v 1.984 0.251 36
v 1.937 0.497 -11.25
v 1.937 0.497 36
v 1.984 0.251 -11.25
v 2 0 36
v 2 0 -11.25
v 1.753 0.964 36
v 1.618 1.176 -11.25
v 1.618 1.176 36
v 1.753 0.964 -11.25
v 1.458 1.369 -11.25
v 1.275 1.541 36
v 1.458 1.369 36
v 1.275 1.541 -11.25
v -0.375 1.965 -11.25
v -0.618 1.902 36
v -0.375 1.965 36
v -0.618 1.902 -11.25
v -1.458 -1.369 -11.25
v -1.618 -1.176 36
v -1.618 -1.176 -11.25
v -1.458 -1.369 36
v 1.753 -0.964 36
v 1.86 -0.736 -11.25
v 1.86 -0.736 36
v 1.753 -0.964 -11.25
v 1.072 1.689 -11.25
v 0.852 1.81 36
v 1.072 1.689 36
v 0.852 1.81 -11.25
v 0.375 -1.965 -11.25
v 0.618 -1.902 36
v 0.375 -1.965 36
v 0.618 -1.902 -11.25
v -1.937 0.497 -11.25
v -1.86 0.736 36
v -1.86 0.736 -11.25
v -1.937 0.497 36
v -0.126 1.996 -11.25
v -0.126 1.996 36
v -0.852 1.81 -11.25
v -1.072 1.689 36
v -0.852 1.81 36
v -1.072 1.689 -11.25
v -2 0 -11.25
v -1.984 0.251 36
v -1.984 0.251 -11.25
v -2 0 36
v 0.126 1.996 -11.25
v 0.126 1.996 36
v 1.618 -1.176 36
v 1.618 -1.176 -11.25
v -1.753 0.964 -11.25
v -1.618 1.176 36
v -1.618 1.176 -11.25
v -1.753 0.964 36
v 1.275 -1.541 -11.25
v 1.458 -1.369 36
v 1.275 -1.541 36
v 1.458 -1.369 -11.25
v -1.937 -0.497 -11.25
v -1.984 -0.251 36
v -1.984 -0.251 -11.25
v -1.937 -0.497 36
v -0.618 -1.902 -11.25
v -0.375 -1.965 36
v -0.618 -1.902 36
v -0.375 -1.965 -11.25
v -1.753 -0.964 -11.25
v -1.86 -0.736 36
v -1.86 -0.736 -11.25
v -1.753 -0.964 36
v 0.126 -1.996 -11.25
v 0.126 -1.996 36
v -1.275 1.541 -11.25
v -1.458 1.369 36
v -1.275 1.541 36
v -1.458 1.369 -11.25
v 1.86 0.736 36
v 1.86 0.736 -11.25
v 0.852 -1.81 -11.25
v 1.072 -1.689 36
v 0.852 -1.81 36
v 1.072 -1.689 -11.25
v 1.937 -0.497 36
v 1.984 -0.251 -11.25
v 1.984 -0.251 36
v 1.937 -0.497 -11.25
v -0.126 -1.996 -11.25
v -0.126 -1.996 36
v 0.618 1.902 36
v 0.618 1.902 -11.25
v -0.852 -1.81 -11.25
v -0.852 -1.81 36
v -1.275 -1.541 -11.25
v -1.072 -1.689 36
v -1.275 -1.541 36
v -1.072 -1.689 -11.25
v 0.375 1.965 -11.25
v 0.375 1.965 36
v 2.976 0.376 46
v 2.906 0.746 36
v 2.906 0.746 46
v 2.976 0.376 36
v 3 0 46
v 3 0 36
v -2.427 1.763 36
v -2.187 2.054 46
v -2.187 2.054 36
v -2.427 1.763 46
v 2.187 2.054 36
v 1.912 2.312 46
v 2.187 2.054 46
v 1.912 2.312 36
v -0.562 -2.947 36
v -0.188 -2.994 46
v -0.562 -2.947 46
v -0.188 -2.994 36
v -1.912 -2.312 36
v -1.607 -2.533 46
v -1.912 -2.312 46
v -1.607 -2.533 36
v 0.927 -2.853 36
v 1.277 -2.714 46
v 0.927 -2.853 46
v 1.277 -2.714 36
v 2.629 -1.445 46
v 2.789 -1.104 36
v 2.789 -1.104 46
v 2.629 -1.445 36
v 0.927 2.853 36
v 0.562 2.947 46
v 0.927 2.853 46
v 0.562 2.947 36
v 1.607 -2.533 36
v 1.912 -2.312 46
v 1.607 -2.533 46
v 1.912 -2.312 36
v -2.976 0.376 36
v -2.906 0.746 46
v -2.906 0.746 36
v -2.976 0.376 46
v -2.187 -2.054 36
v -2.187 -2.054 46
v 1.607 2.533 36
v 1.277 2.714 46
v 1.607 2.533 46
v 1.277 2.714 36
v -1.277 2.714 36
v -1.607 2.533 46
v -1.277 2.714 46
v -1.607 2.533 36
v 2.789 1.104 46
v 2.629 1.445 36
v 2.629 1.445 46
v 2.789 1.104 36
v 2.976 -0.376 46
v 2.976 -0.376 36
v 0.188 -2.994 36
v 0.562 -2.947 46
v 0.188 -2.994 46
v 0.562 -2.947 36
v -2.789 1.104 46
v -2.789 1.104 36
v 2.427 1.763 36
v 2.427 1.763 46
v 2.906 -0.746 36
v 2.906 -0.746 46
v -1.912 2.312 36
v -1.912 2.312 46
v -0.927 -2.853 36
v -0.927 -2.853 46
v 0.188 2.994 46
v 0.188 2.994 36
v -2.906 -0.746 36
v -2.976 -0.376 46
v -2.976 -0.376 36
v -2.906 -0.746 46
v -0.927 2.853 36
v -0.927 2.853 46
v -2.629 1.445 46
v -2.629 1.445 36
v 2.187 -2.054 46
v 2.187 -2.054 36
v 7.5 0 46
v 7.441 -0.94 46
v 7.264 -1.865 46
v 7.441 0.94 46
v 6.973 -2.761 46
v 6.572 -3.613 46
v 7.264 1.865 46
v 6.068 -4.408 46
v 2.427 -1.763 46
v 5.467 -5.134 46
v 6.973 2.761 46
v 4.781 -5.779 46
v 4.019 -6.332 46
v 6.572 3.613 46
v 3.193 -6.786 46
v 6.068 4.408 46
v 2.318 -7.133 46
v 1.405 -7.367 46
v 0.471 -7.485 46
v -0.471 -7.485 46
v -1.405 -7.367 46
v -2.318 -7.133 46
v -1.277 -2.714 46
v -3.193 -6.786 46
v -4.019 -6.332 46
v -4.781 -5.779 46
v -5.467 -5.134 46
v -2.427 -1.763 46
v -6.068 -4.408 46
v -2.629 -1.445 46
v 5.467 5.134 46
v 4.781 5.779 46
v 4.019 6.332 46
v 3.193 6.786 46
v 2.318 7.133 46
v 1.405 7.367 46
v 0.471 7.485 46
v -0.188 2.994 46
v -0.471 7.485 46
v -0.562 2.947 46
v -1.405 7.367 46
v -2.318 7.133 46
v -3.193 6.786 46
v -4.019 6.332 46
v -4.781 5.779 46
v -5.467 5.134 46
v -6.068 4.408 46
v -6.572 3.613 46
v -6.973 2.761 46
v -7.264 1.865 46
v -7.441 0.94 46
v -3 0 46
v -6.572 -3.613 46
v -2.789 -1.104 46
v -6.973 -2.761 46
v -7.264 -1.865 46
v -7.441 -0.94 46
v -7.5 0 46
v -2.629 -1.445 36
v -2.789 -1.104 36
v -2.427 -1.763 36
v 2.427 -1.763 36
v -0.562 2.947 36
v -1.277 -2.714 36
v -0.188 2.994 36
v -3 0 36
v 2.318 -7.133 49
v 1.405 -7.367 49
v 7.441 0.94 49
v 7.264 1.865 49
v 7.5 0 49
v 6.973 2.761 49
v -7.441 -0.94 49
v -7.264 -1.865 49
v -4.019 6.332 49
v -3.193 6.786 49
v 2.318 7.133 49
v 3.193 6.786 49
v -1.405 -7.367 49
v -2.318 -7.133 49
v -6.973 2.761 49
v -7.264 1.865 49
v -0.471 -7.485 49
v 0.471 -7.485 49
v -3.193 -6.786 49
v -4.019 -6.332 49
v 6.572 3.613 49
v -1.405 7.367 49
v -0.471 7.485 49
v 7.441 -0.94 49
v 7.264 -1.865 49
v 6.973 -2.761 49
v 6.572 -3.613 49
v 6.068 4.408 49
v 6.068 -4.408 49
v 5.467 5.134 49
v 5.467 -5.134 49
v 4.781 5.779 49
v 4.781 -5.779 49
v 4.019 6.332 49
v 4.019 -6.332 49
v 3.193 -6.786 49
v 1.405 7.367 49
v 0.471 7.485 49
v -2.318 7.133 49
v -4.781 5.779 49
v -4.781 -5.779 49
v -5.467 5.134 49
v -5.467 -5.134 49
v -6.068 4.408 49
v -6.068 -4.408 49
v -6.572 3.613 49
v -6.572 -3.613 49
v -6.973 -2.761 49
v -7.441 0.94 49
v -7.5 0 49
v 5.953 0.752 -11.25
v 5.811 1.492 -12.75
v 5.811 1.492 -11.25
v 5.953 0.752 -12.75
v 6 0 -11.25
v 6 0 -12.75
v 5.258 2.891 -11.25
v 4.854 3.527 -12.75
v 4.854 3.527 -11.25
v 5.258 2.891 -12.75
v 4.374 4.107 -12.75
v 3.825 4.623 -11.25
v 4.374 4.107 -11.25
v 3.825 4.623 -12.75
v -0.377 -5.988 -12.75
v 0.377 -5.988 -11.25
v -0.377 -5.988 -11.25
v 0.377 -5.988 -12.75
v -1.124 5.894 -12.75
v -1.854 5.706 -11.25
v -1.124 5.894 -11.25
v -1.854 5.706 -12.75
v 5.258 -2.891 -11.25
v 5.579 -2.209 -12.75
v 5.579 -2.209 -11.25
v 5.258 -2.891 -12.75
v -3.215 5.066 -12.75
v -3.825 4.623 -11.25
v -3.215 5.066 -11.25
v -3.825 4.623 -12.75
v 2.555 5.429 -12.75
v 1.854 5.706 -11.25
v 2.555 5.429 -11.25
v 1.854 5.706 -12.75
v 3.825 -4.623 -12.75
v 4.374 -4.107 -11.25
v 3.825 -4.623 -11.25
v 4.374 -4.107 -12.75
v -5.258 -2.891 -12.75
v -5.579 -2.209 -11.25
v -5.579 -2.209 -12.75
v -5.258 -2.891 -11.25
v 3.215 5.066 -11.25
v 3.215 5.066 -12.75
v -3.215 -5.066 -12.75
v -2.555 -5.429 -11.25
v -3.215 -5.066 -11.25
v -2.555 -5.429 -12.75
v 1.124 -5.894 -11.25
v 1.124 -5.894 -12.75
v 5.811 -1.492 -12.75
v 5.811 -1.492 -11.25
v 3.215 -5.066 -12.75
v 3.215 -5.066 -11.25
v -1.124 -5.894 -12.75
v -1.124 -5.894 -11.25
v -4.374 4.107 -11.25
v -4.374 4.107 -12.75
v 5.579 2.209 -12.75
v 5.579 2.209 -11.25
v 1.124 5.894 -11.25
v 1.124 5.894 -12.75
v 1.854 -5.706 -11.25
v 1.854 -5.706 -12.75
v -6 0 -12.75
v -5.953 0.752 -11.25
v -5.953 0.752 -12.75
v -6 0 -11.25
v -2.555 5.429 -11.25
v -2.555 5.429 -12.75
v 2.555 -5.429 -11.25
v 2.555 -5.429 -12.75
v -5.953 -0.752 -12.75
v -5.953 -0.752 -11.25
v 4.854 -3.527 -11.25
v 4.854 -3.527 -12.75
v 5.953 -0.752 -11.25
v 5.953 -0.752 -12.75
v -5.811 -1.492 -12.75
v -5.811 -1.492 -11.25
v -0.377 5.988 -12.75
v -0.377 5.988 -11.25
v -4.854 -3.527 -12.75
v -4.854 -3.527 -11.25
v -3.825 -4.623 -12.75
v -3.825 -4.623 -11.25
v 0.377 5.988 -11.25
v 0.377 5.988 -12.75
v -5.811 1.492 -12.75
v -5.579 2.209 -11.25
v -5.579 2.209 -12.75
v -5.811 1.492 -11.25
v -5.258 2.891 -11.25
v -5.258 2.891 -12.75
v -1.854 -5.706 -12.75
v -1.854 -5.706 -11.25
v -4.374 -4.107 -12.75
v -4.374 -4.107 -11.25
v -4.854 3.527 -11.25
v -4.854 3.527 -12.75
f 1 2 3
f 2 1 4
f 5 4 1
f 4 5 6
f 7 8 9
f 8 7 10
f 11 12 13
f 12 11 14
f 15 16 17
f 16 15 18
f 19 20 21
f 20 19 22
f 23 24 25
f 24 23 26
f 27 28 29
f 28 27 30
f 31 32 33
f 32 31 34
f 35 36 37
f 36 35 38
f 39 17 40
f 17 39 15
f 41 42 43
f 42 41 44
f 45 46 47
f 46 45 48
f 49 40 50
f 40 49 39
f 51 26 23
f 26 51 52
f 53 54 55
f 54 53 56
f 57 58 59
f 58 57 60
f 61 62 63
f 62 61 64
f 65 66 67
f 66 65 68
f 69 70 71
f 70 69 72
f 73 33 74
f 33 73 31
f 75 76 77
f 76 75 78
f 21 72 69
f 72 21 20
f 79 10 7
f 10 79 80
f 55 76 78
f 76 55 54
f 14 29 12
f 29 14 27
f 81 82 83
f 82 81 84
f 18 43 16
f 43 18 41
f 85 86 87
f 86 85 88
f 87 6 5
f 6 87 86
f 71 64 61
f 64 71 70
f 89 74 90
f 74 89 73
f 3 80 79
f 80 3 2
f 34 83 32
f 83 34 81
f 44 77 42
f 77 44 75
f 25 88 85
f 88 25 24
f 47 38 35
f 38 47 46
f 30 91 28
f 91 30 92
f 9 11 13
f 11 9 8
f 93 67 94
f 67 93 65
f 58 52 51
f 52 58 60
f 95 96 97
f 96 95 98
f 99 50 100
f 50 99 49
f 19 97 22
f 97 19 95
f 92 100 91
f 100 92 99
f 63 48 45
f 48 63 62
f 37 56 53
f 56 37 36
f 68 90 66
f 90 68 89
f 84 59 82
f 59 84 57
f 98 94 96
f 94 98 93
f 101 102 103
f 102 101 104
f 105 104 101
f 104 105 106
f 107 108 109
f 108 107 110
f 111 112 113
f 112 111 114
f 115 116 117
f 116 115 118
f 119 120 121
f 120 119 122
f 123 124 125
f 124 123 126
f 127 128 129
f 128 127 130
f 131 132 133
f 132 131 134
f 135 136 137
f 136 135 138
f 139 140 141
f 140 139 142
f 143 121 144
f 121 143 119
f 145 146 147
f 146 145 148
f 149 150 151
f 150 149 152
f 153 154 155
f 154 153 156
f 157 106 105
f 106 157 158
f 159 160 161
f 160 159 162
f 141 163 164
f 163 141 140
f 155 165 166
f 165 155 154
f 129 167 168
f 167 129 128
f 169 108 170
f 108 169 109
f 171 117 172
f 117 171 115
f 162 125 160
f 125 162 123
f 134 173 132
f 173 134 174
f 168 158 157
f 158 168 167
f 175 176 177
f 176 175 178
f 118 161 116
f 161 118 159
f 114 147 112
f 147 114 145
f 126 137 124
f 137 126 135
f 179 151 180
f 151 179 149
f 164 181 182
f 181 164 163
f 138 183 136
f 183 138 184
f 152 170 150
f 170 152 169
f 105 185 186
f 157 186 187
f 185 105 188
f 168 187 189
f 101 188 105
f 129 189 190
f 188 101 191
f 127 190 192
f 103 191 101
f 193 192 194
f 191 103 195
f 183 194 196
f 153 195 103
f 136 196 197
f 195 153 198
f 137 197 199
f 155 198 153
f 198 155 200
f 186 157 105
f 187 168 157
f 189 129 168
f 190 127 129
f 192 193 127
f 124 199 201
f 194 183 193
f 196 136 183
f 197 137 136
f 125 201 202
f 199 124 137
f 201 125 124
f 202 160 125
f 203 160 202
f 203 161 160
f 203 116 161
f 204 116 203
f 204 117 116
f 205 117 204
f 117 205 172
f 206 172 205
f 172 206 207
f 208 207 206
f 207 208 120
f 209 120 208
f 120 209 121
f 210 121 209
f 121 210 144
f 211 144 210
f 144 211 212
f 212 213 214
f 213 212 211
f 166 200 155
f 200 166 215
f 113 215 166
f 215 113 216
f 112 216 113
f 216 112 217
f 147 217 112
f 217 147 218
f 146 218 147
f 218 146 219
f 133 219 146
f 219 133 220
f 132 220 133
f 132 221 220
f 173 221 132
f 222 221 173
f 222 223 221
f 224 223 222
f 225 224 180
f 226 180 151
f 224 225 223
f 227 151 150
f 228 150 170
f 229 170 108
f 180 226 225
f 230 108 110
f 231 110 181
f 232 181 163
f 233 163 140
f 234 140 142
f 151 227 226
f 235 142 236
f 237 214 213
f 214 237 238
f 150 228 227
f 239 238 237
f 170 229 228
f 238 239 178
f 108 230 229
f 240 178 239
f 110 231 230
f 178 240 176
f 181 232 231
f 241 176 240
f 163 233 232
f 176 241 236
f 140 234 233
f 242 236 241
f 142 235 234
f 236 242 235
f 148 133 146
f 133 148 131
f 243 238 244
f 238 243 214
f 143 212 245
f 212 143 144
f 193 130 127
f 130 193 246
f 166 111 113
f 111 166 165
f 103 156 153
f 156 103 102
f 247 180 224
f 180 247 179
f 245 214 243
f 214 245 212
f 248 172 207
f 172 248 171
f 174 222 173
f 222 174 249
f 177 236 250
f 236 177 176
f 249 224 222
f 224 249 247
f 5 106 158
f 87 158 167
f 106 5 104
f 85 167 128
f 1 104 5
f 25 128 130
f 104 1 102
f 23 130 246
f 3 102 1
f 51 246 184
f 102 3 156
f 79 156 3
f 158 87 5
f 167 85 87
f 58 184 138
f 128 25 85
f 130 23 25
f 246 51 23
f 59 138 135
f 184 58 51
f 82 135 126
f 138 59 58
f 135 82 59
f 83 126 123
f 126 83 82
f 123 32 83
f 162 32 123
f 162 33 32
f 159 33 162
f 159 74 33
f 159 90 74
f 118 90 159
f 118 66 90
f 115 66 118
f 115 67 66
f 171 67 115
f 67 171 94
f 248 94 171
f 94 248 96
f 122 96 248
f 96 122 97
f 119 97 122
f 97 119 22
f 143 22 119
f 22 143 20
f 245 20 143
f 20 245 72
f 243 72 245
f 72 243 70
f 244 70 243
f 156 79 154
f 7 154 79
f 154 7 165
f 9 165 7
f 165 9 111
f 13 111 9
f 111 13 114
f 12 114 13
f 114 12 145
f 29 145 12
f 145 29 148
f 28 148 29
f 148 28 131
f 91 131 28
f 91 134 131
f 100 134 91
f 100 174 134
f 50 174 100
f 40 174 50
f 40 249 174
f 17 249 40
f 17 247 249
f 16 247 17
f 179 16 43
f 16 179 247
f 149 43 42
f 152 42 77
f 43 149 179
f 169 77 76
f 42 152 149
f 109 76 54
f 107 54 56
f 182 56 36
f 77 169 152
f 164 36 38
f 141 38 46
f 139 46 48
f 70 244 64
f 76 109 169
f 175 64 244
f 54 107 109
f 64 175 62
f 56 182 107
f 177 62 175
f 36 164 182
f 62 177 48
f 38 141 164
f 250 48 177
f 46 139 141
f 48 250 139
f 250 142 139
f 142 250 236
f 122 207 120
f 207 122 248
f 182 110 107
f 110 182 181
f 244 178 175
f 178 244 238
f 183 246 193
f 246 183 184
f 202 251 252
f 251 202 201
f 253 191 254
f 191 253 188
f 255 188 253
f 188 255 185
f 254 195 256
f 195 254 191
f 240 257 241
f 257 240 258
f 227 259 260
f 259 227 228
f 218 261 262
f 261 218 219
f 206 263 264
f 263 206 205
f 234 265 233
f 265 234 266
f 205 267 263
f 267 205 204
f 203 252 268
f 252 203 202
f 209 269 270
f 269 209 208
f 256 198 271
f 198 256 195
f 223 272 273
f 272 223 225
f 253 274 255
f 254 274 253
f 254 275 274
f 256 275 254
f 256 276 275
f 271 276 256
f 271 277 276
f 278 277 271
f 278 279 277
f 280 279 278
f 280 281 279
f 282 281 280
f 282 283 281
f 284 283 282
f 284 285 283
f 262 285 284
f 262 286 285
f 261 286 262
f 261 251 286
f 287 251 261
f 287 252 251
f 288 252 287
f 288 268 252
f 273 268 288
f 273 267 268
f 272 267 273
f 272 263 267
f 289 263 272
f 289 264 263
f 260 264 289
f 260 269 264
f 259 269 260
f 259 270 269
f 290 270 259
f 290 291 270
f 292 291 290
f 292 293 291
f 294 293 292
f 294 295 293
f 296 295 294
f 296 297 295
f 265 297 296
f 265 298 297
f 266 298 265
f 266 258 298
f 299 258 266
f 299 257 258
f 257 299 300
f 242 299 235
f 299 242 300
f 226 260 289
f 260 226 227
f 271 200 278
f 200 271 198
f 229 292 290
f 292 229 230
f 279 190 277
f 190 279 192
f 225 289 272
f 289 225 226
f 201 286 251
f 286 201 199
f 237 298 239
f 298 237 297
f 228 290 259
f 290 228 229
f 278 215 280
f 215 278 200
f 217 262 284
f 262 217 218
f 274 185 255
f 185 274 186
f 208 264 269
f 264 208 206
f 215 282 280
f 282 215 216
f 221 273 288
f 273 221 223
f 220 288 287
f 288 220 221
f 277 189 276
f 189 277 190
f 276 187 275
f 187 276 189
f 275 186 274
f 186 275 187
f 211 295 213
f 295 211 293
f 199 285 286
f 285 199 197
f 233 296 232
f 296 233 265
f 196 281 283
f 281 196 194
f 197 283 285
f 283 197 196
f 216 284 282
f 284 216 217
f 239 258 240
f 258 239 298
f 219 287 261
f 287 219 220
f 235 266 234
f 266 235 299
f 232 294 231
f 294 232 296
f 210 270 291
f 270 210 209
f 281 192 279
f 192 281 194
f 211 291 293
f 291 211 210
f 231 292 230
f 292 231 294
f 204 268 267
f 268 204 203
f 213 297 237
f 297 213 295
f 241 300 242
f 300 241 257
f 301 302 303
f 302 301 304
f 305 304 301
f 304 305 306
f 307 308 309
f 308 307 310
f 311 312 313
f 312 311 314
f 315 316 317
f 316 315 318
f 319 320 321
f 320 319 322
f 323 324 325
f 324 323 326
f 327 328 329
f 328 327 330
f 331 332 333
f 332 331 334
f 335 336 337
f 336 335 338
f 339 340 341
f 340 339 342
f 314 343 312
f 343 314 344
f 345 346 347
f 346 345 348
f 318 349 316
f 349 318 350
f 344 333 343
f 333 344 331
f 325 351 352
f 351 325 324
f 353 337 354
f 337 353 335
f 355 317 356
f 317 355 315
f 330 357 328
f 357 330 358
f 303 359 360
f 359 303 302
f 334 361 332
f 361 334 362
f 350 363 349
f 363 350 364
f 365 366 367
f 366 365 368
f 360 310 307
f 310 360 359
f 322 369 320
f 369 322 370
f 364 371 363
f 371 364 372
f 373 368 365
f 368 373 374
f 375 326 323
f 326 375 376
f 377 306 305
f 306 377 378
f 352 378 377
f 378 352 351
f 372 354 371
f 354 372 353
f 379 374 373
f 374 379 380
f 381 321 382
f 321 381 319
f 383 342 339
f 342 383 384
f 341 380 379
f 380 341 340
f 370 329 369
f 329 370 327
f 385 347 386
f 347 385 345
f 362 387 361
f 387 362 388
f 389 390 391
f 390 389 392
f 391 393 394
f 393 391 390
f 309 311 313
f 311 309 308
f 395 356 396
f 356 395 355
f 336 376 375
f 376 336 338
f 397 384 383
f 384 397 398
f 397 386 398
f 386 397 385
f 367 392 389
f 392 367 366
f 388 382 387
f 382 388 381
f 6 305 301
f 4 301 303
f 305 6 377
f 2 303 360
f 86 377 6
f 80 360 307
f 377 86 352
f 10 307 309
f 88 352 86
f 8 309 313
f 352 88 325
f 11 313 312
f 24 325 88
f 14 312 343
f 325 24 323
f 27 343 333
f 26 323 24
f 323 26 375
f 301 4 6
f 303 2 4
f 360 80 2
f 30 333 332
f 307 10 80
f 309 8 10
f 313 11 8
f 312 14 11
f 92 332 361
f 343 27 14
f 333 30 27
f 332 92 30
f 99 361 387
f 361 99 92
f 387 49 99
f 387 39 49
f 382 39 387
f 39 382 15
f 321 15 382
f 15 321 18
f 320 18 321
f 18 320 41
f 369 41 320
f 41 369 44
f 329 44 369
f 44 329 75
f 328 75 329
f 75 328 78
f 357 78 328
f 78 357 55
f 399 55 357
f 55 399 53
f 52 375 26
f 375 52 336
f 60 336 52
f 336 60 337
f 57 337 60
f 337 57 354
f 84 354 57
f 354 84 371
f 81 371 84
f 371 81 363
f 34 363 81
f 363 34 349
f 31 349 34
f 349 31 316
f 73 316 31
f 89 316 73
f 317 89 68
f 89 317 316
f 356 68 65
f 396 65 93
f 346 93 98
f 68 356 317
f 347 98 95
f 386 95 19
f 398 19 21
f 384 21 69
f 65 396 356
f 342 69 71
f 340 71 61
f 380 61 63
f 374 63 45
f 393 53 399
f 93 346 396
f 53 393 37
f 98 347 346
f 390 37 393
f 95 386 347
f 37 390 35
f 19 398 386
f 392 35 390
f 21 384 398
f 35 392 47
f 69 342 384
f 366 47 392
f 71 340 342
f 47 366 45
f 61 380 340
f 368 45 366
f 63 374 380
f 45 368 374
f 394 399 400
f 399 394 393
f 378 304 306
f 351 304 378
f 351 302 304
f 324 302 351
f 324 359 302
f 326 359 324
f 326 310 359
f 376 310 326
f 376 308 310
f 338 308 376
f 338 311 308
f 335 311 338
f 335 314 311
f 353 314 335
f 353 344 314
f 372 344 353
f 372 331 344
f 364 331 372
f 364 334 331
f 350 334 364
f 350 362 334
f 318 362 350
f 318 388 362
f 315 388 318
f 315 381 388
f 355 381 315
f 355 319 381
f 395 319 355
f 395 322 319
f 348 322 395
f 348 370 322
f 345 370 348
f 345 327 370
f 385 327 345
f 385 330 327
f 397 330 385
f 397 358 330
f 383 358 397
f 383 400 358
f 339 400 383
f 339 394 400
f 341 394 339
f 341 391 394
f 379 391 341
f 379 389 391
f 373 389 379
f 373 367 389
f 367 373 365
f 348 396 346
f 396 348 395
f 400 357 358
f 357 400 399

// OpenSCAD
// file: variables.scad
$fn = 50;
//chambres

//globol

decal = 5; //decalage global chambres
lg = 310; //longueur totale
lag = 60; //largeur totae
ep = 1.5; //epaisseur plak
etv = 19; // ecart vert touches
eth = 14; //ecrat hor touches
nb = 15; //nombre de touches

//plaque dessus

hpd = 40; //hauteur plaque dessus
dth = 8; //diametre des trous pl haut
dtb = 6; //diametre des trous pl bas

//include <plaque_dessus.scad>

//tubes 

dtige=4; //diametre tige bouton
dtub = 6; //dimatre tube 
drtub = 8; //diametre tube ressort
hrtub = 10; //hauteur ressort tube
hbtub = 14; //hauteur du bas du tube

//include <tubes.scad>

//chambre

htc=10;//hauteur chambres
epa = 2; //epaisseur ailettes
epc=3; //grosse epaisseur chmbre

long0=etv-drtub;
long00=etv-drtub-ep*2;
long000=etv+etv/2;
long1=lag/2-drtub/2-epc-epc/2;
long2=lag/2+epc/2+drtub/2;

longb = 10; //largueur basse ailette
longh = 5; //largeur haute ailette

lab = lag-longb*2;


//plaque dessus ici a cause des variables des chambres


//tigettes

epe = 6; //epaisseur escalier
escalier = 3; //ecart de hauteur des touches
htig = hpd+epe;
etouch = 3; //epaisseur touche    
diat = 15; // diametre de la touche
//coté droit



echo();
echo();
echo();
echo();
echo("***********************");
echo("long000 aka inter cloisons = ", long000);
echo("long0 fond des cloisons = ", long0);
echo("long1 base ailette centrale = ", long1);
echo("long2 base ailette grande = ", long2);




echo("*********************** ");
echo();
echo();


hypo = sqrt((longb-longh)^2 + hpd^2);
echo("hypo" ,hypo);
cosin = hpd/hypo;
echo("cos alpha",cosin);
angle = acos(cosin);
echo("angle",angle);



//reservoir d'air


htr = 8;



//plaques ltérales

hhtt=37; //hauteur première plaque

//include <plaques_laterales.scad>

//plaques internes

//plaque intermediaire ou bout de bois


hauteur = hpd-hrtub;
echo("hauteur" , hauteur);
hypopo = 1 / (cos(angle) / hauteur);
hypopopo = 1 / (cos(angle) / hpd);
echo("hypopo", hypopo);
coop = sin(angle) * hypopo;
echo("coop", coop);

//plaques laterale interne
// main file
include <variables.scad>




translate([0,0,-longb-ep-0.5])
cylinder(htig+longb, d=dtige);
translate([0,0,hpd-hrtub+epe])
cylinder(hrtub, d=dtub);
translate([0,0,hpd+epe])
cylinder(etouch, d=diat); //touche

translate([0,0,-ep/2-longb-ep-0.5])
cylinder(ep, d= drtub+4); //clapet
